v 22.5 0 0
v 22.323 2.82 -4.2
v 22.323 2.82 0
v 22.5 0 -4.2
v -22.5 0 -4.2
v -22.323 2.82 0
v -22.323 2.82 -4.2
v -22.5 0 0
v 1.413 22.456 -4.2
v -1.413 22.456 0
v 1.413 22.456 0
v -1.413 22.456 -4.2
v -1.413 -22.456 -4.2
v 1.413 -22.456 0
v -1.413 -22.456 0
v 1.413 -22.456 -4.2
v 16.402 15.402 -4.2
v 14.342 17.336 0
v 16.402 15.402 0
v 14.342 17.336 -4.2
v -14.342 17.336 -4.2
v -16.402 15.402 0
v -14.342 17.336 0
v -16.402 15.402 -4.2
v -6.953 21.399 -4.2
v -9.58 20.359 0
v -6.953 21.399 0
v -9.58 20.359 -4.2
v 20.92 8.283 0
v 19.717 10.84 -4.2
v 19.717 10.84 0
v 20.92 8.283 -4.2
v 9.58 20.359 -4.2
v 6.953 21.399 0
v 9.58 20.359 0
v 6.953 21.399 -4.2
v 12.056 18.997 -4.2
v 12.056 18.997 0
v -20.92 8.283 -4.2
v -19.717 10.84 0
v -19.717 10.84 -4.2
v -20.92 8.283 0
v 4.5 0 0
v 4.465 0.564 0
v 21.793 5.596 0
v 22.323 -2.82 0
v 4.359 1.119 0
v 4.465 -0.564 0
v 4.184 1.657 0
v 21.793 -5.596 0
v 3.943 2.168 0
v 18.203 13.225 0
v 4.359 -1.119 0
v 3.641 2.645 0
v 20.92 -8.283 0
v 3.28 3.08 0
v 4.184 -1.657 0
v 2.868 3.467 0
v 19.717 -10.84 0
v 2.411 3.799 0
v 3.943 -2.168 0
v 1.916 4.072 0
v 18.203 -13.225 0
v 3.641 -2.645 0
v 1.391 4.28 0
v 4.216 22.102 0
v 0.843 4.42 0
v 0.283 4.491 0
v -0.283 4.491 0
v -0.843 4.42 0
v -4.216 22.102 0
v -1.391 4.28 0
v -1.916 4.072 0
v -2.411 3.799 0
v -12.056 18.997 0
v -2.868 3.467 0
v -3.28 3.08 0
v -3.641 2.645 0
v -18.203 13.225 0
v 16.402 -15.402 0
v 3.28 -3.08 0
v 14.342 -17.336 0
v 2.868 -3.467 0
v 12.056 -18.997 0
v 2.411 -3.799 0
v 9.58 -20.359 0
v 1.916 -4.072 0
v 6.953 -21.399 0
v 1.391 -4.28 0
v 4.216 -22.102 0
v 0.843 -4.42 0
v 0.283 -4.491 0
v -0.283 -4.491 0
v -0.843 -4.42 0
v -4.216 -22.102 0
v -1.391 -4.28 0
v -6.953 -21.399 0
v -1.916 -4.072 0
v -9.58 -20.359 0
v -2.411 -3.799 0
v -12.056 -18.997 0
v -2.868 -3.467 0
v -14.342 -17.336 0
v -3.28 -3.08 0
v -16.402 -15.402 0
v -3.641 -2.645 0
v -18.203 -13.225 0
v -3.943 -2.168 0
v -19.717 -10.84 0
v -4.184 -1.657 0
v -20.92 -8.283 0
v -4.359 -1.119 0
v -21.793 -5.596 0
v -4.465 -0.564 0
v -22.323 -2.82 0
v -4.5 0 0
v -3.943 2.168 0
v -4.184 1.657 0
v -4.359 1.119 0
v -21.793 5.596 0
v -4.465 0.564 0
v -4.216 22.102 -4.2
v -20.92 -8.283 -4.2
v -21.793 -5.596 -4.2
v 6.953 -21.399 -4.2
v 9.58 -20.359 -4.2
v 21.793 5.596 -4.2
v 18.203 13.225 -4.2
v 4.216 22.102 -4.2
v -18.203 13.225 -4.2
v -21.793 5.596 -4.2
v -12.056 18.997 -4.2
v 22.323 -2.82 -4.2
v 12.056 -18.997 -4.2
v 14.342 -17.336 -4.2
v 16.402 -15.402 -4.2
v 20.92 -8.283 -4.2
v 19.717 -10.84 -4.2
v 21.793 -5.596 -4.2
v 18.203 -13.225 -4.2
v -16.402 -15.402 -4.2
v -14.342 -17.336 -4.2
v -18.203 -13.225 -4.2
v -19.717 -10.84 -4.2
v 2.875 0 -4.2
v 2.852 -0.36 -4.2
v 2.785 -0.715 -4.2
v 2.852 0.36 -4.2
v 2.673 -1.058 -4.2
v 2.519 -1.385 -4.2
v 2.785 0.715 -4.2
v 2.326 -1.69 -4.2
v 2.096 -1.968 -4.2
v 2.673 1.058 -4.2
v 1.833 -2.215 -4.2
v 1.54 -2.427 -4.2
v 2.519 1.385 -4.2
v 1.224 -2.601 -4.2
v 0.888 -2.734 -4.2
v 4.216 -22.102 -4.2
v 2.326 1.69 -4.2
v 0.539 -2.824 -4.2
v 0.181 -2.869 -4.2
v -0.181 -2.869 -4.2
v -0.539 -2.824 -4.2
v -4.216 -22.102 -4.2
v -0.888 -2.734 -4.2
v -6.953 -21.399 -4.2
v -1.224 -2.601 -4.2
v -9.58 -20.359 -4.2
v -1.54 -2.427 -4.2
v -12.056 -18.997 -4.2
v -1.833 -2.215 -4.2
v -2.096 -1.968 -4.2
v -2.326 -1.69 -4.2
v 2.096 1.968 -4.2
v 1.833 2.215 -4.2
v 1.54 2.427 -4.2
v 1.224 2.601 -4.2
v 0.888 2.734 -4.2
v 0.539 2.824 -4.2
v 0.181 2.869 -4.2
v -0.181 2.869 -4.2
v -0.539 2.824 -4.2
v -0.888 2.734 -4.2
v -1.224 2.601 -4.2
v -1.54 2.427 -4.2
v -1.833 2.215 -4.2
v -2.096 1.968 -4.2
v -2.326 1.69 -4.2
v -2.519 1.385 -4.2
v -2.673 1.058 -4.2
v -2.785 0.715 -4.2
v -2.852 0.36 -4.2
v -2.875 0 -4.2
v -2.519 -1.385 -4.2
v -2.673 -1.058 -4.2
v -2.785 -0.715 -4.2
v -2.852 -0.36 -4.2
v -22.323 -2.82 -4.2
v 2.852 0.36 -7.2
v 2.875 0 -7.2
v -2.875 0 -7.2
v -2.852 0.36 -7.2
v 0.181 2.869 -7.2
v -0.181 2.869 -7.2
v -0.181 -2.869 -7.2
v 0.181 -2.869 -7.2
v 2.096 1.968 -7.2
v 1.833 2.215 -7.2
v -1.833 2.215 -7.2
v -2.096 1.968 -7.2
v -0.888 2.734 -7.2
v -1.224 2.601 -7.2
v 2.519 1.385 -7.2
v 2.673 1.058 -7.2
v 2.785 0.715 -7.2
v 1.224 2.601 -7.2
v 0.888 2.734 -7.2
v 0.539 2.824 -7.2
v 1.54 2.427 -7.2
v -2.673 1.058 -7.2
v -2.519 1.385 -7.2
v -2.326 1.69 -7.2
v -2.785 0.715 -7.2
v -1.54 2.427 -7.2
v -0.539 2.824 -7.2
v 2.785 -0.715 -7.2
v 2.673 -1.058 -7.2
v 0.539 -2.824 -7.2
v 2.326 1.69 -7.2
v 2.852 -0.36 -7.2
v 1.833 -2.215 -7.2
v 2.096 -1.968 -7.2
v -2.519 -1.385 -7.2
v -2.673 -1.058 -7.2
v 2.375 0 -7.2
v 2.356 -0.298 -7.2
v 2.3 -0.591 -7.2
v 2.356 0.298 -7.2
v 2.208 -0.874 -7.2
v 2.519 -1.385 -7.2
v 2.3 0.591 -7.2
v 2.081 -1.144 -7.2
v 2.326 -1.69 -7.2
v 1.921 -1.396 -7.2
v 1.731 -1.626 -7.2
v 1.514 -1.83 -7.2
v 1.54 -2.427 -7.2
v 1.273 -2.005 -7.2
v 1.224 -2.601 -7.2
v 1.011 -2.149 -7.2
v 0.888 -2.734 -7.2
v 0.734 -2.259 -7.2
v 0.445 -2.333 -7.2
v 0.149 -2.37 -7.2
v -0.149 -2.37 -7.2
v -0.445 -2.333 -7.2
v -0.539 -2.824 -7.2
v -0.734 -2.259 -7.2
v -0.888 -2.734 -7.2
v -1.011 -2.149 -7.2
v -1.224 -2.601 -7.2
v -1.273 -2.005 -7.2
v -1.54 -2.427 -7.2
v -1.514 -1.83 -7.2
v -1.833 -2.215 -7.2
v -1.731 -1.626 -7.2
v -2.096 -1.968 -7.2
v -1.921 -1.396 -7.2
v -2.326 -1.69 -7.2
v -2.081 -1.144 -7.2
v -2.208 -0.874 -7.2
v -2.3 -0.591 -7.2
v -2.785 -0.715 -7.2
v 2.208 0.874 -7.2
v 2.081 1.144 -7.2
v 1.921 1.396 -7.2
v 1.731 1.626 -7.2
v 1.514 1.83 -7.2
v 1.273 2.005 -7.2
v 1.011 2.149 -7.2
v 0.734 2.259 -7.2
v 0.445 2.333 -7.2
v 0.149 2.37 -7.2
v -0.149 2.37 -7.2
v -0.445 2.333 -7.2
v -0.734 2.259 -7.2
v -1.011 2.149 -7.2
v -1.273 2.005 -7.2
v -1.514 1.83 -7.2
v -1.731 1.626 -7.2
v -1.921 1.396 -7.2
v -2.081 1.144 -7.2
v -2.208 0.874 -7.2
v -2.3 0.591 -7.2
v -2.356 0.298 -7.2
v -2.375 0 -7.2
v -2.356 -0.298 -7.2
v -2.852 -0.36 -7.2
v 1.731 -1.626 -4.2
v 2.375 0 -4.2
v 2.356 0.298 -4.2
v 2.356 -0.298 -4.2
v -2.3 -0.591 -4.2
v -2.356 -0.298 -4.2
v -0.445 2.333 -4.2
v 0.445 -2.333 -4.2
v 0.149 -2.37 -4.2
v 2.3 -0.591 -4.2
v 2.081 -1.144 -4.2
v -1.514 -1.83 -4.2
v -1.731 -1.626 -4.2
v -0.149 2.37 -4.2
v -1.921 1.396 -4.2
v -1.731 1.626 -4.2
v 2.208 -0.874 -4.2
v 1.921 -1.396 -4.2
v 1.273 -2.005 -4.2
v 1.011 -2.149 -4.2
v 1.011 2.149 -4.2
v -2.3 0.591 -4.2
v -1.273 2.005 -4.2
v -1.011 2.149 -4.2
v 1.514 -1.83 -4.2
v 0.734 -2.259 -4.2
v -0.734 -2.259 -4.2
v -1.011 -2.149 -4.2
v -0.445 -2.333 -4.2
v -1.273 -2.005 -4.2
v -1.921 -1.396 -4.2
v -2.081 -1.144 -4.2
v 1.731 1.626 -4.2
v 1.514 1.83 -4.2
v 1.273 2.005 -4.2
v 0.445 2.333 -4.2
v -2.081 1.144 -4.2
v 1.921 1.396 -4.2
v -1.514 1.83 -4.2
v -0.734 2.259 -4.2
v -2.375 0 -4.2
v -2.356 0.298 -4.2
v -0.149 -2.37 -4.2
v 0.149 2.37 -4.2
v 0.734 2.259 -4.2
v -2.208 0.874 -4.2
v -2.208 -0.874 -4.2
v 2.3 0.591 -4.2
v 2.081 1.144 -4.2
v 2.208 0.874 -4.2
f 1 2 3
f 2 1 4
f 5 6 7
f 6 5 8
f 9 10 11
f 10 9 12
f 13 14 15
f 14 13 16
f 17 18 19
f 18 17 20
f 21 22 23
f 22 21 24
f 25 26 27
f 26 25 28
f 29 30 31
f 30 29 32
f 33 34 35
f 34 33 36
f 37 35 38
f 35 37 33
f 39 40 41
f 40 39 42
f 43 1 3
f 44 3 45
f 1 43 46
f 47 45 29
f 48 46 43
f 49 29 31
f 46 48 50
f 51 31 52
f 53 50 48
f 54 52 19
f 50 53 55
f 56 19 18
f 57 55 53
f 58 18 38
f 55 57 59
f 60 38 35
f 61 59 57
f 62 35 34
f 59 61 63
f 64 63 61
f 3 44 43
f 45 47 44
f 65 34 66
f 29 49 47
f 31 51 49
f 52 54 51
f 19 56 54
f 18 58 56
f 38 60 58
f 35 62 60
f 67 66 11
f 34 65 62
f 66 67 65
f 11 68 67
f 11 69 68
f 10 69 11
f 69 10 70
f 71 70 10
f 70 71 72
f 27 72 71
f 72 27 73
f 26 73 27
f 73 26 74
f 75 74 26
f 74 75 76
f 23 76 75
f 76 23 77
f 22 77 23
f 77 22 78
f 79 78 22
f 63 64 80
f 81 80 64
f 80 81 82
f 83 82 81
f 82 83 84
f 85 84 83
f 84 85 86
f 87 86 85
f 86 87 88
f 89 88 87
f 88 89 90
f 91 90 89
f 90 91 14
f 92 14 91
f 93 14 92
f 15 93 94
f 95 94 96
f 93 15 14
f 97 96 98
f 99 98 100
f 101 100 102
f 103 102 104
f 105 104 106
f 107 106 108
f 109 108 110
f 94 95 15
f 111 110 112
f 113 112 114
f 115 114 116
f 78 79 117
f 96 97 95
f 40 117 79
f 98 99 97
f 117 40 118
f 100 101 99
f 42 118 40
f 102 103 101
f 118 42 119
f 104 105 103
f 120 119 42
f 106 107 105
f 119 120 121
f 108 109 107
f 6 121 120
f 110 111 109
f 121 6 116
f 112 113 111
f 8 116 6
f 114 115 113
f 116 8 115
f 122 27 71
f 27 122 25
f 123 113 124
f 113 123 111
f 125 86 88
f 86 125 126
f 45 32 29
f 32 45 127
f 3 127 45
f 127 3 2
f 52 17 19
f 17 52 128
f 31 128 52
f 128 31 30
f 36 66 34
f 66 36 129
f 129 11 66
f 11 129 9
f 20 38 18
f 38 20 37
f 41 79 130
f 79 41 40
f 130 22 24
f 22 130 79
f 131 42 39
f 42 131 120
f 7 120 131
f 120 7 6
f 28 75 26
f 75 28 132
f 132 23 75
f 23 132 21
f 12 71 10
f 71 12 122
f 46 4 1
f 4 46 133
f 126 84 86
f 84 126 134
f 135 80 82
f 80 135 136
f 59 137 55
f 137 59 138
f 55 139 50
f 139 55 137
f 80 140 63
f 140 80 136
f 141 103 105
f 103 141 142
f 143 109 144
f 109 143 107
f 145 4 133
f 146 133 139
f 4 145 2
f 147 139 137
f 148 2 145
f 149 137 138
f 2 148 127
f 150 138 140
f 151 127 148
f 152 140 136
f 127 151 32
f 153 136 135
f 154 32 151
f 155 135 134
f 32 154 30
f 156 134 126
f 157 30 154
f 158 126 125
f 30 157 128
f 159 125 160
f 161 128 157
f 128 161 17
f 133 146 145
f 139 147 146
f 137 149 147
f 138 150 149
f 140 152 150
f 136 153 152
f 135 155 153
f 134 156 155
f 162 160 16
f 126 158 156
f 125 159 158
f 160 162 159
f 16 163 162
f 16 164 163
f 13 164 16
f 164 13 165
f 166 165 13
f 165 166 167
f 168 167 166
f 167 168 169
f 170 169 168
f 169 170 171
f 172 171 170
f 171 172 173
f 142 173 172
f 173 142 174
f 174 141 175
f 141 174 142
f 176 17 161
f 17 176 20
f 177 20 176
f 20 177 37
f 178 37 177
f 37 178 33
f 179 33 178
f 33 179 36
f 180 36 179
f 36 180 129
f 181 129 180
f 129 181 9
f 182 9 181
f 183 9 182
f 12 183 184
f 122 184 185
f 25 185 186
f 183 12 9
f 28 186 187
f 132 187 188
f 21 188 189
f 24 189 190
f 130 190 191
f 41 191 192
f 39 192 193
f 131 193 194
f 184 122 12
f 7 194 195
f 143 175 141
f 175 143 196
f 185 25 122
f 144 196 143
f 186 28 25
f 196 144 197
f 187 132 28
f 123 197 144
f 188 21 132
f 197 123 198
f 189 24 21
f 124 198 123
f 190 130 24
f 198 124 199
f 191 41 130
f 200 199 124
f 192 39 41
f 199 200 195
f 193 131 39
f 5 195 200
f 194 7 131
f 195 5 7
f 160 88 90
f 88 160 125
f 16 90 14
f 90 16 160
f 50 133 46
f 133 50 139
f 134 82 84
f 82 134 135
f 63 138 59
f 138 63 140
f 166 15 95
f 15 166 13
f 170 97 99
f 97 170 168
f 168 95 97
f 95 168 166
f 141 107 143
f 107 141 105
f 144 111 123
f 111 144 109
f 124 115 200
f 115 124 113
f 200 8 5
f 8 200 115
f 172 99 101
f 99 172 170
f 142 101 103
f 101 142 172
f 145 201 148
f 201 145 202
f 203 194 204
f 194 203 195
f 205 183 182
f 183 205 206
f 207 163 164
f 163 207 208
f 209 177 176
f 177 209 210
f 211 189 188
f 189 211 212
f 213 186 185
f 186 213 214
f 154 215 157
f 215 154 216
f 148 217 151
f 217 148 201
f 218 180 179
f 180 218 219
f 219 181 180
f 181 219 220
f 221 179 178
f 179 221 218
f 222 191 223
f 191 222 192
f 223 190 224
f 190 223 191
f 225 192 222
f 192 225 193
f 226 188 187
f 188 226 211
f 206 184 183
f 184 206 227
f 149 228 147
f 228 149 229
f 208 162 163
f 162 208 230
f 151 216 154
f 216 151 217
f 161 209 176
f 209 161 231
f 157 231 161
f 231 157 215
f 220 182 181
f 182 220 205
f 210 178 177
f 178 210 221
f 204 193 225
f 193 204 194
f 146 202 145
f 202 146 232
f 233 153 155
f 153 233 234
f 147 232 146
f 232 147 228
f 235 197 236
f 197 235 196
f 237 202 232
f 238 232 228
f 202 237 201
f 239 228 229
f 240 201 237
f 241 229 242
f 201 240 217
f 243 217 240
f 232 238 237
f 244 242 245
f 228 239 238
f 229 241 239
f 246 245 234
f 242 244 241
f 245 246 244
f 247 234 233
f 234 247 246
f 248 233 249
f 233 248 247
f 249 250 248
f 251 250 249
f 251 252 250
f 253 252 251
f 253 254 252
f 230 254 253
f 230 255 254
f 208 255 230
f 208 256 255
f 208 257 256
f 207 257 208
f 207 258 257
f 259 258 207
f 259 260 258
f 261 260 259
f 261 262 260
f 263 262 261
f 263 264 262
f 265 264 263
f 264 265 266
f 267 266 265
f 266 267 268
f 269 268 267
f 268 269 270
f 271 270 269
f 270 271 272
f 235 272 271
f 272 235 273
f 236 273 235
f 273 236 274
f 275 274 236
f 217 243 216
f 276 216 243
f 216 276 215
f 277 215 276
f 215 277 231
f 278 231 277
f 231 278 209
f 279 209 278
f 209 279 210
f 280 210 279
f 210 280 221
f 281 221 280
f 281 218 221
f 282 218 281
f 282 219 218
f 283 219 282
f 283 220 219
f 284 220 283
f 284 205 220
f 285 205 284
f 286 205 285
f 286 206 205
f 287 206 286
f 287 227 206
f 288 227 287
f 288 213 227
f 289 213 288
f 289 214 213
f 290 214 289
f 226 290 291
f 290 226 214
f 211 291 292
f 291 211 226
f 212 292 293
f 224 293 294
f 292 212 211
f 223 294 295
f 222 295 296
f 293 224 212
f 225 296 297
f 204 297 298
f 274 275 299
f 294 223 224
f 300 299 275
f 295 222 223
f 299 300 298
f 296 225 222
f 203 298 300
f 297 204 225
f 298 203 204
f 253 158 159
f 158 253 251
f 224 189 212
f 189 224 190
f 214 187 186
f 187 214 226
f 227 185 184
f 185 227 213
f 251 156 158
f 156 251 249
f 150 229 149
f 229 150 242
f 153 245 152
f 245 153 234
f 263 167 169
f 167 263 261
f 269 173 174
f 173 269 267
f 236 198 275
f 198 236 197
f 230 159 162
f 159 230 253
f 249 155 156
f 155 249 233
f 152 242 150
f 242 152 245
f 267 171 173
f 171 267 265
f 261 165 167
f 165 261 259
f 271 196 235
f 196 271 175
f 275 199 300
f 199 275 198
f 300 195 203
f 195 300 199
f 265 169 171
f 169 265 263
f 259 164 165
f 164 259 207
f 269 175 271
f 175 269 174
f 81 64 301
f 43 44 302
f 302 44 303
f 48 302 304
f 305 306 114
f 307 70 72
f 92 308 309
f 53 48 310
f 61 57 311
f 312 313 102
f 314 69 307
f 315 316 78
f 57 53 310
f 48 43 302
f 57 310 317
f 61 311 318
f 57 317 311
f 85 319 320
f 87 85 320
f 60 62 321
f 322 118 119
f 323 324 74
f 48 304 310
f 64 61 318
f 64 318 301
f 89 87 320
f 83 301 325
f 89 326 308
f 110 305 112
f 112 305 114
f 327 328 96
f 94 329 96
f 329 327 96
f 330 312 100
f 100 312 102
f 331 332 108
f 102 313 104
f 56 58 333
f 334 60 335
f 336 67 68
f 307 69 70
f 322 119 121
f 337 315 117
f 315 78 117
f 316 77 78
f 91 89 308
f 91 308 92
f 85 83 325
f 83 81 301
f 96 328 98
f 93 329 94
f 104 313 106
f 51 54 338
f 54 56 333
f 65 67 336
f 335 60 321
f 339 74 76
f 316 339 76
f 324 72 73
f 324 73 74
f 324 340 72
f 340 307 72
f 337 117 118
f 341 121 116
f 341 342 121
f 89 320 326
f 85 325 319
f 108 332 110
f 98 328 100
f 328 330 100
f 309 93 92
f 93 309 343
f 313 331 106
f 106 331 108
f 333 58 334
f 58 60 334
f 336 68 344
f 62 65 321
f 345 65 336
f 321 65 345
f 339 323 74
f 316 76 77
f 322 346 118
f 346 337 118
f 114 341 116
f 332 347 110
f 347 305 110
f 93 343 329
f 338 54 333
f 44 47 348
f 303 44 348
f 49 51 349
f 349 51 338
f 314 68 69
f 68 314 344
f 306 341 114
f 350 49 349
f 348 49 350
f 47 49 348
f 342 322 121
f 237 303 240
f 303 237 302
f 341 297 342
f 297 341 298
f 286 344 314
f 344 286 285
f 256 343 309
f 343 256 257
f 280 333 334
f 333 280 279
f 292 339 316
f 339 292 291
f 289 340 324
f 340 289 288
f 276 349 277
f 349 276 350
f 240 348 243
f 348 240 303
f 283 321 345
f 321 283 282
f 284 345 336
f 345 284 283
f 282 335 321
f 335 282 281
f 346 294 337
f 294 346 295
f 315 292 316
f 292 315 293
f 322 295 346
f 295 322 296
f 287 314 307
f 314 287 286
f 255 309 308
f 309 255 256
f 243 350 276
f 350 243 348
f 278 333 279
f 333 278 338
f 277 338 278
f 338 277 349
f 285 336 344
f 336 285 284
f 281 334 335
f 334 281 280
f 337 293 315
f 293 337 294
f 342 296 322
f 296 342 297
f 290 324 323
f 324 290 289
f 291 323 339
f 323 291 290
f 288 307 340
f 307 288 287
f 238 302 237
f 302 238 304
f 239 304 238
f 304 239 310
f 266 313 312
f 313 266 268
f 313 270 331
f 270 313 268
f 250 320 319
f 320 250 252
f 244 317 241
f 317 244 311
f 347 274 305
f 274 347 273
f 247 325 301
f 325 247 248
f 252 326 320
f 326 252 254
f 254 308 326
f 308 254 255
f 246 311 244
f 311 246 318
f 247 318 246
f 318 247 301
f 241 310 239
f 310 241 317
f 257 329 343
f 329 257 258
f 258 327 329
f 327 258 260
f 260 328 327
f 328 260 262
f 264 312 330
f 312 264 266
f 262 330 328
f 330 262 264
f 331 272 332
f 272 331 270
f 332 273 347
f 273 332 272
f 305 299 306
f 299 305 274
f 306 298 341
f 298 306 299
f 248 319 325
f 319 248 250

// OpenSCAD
$fn = 50;


difference() {
	union() {
		translate(v = [0, 0, -4.2000000000]) {
			cylinder(h = 4.2000000000, r = 22.5000000000);
		}
		#translate(v = [0, 0, -7.2000000000]) {
			cylinder(h = 7.2000000000, r = 2.8750000000);
		}
	}
	union() {
		translate(v = [0, 0, 0]) {
			rotate(a = [0, 0, 0]) {
				difference() {
					union() {
						translate(v = [0, 0, -7.2000000000]) {
							cylinder(h = 7.2000000000, r = 2.2500000000);
						}
						translate(v = [0, 0, -4.2000000000]) {
							cylinder(h = 4.2000000000, r1 = 2.3750000000, r2 = 4.5000000000);
						}
						translate(v = [0, 0, -7.2000000000]) {
							cylinder(h = 7.2000000000, r = 2.3750000000);
						}
						translate(v = [0, 0, -7.2000000000]) {
							cylinder(h = 7.2000000000, r = 2.2500000000);
						}
					}
					union();
				}
			}
		}
	}
}
